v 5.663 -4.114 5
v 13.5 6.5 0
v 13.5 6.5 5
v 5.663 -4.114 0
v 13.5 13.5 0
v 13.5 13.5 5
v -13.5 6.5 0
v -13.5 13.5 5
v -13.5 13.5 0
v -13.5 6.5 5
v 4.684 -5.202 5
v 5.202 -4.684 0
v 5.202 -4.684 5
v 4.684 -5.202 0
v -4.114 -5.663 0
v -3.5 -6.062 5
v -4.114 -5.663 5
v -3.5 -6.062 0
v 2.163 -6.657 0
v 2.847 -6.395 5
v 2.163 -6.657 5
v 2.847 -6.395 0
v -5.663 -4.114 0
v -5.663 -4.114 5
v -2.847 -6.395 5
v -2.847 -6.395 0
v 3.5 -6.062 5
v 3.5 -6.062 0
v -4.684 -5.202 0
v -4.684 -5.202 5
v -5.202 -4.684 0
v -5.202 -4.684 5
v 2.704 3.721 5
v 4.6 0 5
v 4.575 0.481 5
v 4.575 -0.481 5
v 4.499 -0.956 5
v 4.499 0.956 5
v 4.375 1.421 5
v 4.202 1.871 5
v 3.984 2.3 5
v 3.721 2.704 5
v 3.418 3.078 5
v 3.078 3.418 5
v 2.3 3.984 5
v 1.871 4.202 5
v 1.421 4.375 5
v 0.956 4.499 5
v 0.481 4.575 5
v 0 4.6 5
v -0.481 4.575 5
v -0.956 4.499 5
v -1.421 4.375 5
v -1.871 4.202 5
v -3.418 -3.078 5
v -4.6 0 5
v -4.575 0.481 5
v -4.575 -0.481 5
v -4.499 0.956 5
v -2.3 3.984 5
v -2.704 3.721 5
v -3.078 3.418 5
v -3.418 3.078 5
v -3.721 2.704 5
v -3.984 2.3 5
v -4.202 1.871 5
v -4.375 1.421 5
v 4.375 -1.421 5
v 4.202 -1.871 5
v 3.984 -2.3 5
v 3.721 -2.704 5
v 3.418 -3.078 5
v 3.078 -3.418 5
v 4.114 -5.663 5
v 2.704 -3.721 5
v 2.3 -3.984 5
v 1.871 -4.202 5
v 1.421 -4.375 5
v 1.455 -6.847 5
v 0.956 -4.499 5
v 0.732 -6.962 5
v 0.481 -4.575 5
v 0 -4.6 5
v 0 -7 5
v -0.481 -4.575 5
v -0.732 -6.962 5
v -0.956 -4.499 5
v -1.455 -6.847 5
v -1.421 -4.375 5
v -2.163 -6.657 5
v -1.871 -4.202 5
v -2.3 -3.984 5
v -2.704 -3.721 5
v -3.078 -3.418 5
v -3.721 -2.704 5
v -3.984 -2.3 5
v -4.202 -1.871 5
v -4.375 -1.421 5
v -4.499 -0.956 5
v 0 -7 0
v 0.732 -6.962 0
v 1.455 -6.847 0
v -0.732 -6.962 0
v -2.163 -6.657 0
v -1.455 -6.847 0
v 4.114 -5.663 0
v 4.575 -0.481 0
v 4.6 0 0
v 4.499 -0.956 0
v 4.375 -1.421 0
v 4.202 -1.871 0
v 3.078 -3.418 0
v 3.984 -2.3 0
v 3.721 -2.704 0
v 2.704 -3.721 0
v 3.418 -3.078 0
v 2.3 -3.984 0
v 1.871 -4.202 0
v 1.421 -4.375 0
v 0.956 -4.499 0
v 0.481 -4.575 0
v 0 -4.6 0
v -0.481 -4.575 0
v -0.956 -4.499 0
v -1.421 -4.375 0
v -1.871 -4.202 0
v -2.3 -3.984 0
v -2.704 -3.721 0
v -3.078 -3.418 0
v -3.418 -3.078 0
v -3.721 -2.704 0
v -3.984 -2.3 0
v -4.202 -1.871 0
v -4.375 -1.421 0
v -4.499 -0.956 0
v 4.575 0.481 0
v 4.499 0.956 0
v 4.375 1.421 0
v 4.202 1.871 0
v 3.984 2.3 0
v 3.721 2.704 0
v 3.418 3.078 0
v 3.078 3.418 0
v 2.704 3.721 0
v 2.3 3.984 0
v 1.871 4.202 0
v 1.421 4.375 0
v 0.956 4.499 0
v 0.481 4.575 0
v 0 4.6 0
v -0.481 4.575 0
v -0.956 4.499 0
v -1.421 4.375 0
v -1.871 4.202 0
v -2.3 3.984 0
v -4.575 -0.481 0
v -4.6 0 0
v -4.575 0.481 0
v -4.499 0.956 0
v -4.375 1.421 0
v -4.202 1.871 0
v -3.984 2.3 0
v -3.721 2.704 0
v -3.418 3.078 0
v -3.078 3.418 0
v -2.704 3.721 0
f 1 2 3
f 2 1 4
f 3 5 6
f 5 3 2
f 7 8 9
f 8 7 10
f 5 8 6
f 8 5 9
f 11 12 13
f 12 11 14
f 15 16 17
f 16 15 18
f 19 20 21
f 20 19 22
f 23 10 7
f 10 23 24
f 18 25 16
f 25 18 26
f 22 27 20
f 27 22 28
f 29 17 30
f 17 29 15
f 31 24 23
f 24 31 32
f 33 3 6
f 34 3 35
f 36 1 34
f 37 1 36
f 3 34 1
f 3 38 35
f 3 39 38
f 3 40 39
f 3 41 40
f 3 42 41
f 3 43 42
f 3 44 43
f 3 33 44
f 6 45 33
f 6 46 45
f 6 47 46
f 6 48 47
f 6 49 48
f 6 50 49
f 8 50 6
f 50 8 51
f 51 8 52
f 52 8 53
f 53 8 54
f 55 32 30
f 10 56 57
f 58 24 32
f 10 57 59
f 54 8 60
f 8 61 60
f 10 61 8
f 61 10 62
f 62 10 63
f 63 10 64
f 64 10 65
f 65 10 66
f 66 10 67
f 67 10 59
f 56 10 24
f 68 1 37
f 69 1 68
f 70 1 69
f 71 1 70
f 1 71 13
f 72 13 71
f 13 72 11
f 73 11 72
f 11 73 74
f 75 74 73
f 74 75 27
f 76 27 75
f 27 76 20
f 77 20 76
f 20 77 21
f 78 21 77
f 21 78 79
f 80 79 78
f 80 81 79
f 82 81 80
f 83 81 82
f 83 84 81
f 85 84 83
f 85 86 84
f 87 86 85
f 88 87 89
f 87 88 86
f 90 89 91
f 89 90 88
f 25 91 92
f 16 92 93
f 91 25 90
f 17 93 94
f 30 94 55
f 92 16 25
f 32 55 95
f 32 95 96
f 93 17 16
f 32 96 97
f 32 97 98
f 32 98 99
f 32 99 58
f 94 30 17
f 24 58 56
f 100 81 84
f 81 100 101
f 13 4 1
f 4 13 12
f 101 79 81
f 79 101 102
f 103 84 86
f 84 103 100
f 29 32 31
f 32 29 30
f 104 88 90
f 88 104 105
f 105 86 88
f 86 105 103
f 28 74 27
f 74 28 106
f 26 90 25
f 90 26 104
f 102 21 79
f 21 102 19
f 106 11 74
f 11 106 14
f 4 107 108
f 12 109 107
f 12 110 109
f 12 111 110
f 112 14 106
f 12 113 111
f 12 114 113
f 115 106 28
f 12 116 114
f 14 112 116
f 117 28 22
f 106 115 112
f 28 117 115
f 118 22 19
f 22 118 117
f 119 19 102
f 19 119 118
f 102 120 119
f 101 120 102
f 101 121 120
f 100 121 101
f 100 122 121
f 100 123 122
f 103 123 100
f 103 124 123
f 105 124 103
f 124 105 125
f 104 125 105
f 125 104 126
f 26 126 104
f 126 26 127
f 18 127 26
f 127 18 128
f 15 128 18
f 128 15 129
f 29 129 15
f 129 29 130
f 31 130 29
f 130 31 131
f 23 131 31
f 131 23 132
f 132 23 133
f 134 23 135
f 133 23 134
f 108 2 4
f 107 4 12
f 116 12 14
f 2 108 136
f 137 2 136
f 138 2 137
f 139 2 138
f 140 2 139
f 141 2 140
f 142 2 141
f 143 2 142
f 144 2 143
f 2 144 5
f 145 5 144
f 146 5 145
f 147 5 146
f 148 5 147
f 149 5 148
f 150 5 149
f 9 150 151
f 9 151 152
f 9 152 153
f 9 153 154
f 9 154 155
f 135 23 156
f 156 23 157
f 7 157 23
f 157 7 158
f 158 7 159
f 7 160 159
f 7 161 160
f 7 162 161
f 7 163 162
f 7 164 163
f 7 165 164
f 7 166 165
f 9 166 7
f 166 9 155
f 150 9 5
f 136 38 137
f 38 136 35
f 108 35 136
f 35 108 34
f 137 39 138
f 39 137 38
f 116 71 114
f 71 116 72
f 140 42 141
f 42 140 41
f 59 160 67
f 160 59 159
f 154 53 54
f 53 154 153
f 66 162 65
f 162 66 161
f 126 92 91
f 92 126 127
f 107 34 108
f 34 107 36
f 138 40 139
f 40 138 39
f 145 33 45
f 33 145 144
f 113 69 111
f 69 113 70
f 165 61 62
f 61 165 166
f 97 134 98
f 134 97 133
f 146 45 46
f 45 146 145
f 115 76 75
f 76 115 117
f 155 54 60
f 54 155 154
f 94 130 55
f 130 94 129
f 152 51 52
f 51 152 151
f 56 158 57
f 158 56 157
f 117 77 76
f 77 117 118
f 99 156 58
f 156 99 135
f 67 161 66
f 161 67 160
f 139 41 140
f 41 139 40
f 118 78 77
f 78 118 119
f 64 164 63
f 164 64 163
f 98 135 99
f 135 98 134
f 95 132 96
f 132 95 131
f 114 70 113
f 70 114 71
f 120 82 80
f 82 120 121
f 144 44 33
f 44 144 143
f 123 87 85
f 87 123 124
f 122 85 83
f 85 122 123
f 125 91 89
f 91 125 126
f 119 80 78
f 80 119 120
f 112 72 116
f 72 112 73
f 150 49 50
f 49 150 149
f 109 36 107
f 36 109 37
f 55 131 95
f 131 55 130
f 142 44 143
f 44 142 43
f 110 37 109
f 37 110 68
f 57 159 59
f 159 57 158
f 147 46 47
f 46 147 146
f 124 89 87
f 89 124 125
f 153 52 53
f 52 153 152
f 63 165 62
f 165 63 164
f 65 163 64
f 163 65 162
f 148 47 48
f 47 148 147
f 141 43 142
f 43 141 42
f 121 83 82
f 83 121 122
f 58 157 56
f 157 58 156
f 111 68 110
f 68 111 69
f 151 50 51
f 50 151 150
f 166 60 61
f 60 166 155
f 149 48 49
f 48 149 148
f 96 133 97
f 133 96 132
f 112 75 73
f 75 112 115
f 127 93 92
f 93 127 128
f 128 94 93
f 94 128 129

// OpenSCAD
$fn = 60;

difference(){
    hull(){
translate([0,10,2.5])cube([27,7,5],center = true);
cylinder(5,7,7);
    }
translate([0,0,-1])cylinder(10,9.2/2,9.2/2);
}
